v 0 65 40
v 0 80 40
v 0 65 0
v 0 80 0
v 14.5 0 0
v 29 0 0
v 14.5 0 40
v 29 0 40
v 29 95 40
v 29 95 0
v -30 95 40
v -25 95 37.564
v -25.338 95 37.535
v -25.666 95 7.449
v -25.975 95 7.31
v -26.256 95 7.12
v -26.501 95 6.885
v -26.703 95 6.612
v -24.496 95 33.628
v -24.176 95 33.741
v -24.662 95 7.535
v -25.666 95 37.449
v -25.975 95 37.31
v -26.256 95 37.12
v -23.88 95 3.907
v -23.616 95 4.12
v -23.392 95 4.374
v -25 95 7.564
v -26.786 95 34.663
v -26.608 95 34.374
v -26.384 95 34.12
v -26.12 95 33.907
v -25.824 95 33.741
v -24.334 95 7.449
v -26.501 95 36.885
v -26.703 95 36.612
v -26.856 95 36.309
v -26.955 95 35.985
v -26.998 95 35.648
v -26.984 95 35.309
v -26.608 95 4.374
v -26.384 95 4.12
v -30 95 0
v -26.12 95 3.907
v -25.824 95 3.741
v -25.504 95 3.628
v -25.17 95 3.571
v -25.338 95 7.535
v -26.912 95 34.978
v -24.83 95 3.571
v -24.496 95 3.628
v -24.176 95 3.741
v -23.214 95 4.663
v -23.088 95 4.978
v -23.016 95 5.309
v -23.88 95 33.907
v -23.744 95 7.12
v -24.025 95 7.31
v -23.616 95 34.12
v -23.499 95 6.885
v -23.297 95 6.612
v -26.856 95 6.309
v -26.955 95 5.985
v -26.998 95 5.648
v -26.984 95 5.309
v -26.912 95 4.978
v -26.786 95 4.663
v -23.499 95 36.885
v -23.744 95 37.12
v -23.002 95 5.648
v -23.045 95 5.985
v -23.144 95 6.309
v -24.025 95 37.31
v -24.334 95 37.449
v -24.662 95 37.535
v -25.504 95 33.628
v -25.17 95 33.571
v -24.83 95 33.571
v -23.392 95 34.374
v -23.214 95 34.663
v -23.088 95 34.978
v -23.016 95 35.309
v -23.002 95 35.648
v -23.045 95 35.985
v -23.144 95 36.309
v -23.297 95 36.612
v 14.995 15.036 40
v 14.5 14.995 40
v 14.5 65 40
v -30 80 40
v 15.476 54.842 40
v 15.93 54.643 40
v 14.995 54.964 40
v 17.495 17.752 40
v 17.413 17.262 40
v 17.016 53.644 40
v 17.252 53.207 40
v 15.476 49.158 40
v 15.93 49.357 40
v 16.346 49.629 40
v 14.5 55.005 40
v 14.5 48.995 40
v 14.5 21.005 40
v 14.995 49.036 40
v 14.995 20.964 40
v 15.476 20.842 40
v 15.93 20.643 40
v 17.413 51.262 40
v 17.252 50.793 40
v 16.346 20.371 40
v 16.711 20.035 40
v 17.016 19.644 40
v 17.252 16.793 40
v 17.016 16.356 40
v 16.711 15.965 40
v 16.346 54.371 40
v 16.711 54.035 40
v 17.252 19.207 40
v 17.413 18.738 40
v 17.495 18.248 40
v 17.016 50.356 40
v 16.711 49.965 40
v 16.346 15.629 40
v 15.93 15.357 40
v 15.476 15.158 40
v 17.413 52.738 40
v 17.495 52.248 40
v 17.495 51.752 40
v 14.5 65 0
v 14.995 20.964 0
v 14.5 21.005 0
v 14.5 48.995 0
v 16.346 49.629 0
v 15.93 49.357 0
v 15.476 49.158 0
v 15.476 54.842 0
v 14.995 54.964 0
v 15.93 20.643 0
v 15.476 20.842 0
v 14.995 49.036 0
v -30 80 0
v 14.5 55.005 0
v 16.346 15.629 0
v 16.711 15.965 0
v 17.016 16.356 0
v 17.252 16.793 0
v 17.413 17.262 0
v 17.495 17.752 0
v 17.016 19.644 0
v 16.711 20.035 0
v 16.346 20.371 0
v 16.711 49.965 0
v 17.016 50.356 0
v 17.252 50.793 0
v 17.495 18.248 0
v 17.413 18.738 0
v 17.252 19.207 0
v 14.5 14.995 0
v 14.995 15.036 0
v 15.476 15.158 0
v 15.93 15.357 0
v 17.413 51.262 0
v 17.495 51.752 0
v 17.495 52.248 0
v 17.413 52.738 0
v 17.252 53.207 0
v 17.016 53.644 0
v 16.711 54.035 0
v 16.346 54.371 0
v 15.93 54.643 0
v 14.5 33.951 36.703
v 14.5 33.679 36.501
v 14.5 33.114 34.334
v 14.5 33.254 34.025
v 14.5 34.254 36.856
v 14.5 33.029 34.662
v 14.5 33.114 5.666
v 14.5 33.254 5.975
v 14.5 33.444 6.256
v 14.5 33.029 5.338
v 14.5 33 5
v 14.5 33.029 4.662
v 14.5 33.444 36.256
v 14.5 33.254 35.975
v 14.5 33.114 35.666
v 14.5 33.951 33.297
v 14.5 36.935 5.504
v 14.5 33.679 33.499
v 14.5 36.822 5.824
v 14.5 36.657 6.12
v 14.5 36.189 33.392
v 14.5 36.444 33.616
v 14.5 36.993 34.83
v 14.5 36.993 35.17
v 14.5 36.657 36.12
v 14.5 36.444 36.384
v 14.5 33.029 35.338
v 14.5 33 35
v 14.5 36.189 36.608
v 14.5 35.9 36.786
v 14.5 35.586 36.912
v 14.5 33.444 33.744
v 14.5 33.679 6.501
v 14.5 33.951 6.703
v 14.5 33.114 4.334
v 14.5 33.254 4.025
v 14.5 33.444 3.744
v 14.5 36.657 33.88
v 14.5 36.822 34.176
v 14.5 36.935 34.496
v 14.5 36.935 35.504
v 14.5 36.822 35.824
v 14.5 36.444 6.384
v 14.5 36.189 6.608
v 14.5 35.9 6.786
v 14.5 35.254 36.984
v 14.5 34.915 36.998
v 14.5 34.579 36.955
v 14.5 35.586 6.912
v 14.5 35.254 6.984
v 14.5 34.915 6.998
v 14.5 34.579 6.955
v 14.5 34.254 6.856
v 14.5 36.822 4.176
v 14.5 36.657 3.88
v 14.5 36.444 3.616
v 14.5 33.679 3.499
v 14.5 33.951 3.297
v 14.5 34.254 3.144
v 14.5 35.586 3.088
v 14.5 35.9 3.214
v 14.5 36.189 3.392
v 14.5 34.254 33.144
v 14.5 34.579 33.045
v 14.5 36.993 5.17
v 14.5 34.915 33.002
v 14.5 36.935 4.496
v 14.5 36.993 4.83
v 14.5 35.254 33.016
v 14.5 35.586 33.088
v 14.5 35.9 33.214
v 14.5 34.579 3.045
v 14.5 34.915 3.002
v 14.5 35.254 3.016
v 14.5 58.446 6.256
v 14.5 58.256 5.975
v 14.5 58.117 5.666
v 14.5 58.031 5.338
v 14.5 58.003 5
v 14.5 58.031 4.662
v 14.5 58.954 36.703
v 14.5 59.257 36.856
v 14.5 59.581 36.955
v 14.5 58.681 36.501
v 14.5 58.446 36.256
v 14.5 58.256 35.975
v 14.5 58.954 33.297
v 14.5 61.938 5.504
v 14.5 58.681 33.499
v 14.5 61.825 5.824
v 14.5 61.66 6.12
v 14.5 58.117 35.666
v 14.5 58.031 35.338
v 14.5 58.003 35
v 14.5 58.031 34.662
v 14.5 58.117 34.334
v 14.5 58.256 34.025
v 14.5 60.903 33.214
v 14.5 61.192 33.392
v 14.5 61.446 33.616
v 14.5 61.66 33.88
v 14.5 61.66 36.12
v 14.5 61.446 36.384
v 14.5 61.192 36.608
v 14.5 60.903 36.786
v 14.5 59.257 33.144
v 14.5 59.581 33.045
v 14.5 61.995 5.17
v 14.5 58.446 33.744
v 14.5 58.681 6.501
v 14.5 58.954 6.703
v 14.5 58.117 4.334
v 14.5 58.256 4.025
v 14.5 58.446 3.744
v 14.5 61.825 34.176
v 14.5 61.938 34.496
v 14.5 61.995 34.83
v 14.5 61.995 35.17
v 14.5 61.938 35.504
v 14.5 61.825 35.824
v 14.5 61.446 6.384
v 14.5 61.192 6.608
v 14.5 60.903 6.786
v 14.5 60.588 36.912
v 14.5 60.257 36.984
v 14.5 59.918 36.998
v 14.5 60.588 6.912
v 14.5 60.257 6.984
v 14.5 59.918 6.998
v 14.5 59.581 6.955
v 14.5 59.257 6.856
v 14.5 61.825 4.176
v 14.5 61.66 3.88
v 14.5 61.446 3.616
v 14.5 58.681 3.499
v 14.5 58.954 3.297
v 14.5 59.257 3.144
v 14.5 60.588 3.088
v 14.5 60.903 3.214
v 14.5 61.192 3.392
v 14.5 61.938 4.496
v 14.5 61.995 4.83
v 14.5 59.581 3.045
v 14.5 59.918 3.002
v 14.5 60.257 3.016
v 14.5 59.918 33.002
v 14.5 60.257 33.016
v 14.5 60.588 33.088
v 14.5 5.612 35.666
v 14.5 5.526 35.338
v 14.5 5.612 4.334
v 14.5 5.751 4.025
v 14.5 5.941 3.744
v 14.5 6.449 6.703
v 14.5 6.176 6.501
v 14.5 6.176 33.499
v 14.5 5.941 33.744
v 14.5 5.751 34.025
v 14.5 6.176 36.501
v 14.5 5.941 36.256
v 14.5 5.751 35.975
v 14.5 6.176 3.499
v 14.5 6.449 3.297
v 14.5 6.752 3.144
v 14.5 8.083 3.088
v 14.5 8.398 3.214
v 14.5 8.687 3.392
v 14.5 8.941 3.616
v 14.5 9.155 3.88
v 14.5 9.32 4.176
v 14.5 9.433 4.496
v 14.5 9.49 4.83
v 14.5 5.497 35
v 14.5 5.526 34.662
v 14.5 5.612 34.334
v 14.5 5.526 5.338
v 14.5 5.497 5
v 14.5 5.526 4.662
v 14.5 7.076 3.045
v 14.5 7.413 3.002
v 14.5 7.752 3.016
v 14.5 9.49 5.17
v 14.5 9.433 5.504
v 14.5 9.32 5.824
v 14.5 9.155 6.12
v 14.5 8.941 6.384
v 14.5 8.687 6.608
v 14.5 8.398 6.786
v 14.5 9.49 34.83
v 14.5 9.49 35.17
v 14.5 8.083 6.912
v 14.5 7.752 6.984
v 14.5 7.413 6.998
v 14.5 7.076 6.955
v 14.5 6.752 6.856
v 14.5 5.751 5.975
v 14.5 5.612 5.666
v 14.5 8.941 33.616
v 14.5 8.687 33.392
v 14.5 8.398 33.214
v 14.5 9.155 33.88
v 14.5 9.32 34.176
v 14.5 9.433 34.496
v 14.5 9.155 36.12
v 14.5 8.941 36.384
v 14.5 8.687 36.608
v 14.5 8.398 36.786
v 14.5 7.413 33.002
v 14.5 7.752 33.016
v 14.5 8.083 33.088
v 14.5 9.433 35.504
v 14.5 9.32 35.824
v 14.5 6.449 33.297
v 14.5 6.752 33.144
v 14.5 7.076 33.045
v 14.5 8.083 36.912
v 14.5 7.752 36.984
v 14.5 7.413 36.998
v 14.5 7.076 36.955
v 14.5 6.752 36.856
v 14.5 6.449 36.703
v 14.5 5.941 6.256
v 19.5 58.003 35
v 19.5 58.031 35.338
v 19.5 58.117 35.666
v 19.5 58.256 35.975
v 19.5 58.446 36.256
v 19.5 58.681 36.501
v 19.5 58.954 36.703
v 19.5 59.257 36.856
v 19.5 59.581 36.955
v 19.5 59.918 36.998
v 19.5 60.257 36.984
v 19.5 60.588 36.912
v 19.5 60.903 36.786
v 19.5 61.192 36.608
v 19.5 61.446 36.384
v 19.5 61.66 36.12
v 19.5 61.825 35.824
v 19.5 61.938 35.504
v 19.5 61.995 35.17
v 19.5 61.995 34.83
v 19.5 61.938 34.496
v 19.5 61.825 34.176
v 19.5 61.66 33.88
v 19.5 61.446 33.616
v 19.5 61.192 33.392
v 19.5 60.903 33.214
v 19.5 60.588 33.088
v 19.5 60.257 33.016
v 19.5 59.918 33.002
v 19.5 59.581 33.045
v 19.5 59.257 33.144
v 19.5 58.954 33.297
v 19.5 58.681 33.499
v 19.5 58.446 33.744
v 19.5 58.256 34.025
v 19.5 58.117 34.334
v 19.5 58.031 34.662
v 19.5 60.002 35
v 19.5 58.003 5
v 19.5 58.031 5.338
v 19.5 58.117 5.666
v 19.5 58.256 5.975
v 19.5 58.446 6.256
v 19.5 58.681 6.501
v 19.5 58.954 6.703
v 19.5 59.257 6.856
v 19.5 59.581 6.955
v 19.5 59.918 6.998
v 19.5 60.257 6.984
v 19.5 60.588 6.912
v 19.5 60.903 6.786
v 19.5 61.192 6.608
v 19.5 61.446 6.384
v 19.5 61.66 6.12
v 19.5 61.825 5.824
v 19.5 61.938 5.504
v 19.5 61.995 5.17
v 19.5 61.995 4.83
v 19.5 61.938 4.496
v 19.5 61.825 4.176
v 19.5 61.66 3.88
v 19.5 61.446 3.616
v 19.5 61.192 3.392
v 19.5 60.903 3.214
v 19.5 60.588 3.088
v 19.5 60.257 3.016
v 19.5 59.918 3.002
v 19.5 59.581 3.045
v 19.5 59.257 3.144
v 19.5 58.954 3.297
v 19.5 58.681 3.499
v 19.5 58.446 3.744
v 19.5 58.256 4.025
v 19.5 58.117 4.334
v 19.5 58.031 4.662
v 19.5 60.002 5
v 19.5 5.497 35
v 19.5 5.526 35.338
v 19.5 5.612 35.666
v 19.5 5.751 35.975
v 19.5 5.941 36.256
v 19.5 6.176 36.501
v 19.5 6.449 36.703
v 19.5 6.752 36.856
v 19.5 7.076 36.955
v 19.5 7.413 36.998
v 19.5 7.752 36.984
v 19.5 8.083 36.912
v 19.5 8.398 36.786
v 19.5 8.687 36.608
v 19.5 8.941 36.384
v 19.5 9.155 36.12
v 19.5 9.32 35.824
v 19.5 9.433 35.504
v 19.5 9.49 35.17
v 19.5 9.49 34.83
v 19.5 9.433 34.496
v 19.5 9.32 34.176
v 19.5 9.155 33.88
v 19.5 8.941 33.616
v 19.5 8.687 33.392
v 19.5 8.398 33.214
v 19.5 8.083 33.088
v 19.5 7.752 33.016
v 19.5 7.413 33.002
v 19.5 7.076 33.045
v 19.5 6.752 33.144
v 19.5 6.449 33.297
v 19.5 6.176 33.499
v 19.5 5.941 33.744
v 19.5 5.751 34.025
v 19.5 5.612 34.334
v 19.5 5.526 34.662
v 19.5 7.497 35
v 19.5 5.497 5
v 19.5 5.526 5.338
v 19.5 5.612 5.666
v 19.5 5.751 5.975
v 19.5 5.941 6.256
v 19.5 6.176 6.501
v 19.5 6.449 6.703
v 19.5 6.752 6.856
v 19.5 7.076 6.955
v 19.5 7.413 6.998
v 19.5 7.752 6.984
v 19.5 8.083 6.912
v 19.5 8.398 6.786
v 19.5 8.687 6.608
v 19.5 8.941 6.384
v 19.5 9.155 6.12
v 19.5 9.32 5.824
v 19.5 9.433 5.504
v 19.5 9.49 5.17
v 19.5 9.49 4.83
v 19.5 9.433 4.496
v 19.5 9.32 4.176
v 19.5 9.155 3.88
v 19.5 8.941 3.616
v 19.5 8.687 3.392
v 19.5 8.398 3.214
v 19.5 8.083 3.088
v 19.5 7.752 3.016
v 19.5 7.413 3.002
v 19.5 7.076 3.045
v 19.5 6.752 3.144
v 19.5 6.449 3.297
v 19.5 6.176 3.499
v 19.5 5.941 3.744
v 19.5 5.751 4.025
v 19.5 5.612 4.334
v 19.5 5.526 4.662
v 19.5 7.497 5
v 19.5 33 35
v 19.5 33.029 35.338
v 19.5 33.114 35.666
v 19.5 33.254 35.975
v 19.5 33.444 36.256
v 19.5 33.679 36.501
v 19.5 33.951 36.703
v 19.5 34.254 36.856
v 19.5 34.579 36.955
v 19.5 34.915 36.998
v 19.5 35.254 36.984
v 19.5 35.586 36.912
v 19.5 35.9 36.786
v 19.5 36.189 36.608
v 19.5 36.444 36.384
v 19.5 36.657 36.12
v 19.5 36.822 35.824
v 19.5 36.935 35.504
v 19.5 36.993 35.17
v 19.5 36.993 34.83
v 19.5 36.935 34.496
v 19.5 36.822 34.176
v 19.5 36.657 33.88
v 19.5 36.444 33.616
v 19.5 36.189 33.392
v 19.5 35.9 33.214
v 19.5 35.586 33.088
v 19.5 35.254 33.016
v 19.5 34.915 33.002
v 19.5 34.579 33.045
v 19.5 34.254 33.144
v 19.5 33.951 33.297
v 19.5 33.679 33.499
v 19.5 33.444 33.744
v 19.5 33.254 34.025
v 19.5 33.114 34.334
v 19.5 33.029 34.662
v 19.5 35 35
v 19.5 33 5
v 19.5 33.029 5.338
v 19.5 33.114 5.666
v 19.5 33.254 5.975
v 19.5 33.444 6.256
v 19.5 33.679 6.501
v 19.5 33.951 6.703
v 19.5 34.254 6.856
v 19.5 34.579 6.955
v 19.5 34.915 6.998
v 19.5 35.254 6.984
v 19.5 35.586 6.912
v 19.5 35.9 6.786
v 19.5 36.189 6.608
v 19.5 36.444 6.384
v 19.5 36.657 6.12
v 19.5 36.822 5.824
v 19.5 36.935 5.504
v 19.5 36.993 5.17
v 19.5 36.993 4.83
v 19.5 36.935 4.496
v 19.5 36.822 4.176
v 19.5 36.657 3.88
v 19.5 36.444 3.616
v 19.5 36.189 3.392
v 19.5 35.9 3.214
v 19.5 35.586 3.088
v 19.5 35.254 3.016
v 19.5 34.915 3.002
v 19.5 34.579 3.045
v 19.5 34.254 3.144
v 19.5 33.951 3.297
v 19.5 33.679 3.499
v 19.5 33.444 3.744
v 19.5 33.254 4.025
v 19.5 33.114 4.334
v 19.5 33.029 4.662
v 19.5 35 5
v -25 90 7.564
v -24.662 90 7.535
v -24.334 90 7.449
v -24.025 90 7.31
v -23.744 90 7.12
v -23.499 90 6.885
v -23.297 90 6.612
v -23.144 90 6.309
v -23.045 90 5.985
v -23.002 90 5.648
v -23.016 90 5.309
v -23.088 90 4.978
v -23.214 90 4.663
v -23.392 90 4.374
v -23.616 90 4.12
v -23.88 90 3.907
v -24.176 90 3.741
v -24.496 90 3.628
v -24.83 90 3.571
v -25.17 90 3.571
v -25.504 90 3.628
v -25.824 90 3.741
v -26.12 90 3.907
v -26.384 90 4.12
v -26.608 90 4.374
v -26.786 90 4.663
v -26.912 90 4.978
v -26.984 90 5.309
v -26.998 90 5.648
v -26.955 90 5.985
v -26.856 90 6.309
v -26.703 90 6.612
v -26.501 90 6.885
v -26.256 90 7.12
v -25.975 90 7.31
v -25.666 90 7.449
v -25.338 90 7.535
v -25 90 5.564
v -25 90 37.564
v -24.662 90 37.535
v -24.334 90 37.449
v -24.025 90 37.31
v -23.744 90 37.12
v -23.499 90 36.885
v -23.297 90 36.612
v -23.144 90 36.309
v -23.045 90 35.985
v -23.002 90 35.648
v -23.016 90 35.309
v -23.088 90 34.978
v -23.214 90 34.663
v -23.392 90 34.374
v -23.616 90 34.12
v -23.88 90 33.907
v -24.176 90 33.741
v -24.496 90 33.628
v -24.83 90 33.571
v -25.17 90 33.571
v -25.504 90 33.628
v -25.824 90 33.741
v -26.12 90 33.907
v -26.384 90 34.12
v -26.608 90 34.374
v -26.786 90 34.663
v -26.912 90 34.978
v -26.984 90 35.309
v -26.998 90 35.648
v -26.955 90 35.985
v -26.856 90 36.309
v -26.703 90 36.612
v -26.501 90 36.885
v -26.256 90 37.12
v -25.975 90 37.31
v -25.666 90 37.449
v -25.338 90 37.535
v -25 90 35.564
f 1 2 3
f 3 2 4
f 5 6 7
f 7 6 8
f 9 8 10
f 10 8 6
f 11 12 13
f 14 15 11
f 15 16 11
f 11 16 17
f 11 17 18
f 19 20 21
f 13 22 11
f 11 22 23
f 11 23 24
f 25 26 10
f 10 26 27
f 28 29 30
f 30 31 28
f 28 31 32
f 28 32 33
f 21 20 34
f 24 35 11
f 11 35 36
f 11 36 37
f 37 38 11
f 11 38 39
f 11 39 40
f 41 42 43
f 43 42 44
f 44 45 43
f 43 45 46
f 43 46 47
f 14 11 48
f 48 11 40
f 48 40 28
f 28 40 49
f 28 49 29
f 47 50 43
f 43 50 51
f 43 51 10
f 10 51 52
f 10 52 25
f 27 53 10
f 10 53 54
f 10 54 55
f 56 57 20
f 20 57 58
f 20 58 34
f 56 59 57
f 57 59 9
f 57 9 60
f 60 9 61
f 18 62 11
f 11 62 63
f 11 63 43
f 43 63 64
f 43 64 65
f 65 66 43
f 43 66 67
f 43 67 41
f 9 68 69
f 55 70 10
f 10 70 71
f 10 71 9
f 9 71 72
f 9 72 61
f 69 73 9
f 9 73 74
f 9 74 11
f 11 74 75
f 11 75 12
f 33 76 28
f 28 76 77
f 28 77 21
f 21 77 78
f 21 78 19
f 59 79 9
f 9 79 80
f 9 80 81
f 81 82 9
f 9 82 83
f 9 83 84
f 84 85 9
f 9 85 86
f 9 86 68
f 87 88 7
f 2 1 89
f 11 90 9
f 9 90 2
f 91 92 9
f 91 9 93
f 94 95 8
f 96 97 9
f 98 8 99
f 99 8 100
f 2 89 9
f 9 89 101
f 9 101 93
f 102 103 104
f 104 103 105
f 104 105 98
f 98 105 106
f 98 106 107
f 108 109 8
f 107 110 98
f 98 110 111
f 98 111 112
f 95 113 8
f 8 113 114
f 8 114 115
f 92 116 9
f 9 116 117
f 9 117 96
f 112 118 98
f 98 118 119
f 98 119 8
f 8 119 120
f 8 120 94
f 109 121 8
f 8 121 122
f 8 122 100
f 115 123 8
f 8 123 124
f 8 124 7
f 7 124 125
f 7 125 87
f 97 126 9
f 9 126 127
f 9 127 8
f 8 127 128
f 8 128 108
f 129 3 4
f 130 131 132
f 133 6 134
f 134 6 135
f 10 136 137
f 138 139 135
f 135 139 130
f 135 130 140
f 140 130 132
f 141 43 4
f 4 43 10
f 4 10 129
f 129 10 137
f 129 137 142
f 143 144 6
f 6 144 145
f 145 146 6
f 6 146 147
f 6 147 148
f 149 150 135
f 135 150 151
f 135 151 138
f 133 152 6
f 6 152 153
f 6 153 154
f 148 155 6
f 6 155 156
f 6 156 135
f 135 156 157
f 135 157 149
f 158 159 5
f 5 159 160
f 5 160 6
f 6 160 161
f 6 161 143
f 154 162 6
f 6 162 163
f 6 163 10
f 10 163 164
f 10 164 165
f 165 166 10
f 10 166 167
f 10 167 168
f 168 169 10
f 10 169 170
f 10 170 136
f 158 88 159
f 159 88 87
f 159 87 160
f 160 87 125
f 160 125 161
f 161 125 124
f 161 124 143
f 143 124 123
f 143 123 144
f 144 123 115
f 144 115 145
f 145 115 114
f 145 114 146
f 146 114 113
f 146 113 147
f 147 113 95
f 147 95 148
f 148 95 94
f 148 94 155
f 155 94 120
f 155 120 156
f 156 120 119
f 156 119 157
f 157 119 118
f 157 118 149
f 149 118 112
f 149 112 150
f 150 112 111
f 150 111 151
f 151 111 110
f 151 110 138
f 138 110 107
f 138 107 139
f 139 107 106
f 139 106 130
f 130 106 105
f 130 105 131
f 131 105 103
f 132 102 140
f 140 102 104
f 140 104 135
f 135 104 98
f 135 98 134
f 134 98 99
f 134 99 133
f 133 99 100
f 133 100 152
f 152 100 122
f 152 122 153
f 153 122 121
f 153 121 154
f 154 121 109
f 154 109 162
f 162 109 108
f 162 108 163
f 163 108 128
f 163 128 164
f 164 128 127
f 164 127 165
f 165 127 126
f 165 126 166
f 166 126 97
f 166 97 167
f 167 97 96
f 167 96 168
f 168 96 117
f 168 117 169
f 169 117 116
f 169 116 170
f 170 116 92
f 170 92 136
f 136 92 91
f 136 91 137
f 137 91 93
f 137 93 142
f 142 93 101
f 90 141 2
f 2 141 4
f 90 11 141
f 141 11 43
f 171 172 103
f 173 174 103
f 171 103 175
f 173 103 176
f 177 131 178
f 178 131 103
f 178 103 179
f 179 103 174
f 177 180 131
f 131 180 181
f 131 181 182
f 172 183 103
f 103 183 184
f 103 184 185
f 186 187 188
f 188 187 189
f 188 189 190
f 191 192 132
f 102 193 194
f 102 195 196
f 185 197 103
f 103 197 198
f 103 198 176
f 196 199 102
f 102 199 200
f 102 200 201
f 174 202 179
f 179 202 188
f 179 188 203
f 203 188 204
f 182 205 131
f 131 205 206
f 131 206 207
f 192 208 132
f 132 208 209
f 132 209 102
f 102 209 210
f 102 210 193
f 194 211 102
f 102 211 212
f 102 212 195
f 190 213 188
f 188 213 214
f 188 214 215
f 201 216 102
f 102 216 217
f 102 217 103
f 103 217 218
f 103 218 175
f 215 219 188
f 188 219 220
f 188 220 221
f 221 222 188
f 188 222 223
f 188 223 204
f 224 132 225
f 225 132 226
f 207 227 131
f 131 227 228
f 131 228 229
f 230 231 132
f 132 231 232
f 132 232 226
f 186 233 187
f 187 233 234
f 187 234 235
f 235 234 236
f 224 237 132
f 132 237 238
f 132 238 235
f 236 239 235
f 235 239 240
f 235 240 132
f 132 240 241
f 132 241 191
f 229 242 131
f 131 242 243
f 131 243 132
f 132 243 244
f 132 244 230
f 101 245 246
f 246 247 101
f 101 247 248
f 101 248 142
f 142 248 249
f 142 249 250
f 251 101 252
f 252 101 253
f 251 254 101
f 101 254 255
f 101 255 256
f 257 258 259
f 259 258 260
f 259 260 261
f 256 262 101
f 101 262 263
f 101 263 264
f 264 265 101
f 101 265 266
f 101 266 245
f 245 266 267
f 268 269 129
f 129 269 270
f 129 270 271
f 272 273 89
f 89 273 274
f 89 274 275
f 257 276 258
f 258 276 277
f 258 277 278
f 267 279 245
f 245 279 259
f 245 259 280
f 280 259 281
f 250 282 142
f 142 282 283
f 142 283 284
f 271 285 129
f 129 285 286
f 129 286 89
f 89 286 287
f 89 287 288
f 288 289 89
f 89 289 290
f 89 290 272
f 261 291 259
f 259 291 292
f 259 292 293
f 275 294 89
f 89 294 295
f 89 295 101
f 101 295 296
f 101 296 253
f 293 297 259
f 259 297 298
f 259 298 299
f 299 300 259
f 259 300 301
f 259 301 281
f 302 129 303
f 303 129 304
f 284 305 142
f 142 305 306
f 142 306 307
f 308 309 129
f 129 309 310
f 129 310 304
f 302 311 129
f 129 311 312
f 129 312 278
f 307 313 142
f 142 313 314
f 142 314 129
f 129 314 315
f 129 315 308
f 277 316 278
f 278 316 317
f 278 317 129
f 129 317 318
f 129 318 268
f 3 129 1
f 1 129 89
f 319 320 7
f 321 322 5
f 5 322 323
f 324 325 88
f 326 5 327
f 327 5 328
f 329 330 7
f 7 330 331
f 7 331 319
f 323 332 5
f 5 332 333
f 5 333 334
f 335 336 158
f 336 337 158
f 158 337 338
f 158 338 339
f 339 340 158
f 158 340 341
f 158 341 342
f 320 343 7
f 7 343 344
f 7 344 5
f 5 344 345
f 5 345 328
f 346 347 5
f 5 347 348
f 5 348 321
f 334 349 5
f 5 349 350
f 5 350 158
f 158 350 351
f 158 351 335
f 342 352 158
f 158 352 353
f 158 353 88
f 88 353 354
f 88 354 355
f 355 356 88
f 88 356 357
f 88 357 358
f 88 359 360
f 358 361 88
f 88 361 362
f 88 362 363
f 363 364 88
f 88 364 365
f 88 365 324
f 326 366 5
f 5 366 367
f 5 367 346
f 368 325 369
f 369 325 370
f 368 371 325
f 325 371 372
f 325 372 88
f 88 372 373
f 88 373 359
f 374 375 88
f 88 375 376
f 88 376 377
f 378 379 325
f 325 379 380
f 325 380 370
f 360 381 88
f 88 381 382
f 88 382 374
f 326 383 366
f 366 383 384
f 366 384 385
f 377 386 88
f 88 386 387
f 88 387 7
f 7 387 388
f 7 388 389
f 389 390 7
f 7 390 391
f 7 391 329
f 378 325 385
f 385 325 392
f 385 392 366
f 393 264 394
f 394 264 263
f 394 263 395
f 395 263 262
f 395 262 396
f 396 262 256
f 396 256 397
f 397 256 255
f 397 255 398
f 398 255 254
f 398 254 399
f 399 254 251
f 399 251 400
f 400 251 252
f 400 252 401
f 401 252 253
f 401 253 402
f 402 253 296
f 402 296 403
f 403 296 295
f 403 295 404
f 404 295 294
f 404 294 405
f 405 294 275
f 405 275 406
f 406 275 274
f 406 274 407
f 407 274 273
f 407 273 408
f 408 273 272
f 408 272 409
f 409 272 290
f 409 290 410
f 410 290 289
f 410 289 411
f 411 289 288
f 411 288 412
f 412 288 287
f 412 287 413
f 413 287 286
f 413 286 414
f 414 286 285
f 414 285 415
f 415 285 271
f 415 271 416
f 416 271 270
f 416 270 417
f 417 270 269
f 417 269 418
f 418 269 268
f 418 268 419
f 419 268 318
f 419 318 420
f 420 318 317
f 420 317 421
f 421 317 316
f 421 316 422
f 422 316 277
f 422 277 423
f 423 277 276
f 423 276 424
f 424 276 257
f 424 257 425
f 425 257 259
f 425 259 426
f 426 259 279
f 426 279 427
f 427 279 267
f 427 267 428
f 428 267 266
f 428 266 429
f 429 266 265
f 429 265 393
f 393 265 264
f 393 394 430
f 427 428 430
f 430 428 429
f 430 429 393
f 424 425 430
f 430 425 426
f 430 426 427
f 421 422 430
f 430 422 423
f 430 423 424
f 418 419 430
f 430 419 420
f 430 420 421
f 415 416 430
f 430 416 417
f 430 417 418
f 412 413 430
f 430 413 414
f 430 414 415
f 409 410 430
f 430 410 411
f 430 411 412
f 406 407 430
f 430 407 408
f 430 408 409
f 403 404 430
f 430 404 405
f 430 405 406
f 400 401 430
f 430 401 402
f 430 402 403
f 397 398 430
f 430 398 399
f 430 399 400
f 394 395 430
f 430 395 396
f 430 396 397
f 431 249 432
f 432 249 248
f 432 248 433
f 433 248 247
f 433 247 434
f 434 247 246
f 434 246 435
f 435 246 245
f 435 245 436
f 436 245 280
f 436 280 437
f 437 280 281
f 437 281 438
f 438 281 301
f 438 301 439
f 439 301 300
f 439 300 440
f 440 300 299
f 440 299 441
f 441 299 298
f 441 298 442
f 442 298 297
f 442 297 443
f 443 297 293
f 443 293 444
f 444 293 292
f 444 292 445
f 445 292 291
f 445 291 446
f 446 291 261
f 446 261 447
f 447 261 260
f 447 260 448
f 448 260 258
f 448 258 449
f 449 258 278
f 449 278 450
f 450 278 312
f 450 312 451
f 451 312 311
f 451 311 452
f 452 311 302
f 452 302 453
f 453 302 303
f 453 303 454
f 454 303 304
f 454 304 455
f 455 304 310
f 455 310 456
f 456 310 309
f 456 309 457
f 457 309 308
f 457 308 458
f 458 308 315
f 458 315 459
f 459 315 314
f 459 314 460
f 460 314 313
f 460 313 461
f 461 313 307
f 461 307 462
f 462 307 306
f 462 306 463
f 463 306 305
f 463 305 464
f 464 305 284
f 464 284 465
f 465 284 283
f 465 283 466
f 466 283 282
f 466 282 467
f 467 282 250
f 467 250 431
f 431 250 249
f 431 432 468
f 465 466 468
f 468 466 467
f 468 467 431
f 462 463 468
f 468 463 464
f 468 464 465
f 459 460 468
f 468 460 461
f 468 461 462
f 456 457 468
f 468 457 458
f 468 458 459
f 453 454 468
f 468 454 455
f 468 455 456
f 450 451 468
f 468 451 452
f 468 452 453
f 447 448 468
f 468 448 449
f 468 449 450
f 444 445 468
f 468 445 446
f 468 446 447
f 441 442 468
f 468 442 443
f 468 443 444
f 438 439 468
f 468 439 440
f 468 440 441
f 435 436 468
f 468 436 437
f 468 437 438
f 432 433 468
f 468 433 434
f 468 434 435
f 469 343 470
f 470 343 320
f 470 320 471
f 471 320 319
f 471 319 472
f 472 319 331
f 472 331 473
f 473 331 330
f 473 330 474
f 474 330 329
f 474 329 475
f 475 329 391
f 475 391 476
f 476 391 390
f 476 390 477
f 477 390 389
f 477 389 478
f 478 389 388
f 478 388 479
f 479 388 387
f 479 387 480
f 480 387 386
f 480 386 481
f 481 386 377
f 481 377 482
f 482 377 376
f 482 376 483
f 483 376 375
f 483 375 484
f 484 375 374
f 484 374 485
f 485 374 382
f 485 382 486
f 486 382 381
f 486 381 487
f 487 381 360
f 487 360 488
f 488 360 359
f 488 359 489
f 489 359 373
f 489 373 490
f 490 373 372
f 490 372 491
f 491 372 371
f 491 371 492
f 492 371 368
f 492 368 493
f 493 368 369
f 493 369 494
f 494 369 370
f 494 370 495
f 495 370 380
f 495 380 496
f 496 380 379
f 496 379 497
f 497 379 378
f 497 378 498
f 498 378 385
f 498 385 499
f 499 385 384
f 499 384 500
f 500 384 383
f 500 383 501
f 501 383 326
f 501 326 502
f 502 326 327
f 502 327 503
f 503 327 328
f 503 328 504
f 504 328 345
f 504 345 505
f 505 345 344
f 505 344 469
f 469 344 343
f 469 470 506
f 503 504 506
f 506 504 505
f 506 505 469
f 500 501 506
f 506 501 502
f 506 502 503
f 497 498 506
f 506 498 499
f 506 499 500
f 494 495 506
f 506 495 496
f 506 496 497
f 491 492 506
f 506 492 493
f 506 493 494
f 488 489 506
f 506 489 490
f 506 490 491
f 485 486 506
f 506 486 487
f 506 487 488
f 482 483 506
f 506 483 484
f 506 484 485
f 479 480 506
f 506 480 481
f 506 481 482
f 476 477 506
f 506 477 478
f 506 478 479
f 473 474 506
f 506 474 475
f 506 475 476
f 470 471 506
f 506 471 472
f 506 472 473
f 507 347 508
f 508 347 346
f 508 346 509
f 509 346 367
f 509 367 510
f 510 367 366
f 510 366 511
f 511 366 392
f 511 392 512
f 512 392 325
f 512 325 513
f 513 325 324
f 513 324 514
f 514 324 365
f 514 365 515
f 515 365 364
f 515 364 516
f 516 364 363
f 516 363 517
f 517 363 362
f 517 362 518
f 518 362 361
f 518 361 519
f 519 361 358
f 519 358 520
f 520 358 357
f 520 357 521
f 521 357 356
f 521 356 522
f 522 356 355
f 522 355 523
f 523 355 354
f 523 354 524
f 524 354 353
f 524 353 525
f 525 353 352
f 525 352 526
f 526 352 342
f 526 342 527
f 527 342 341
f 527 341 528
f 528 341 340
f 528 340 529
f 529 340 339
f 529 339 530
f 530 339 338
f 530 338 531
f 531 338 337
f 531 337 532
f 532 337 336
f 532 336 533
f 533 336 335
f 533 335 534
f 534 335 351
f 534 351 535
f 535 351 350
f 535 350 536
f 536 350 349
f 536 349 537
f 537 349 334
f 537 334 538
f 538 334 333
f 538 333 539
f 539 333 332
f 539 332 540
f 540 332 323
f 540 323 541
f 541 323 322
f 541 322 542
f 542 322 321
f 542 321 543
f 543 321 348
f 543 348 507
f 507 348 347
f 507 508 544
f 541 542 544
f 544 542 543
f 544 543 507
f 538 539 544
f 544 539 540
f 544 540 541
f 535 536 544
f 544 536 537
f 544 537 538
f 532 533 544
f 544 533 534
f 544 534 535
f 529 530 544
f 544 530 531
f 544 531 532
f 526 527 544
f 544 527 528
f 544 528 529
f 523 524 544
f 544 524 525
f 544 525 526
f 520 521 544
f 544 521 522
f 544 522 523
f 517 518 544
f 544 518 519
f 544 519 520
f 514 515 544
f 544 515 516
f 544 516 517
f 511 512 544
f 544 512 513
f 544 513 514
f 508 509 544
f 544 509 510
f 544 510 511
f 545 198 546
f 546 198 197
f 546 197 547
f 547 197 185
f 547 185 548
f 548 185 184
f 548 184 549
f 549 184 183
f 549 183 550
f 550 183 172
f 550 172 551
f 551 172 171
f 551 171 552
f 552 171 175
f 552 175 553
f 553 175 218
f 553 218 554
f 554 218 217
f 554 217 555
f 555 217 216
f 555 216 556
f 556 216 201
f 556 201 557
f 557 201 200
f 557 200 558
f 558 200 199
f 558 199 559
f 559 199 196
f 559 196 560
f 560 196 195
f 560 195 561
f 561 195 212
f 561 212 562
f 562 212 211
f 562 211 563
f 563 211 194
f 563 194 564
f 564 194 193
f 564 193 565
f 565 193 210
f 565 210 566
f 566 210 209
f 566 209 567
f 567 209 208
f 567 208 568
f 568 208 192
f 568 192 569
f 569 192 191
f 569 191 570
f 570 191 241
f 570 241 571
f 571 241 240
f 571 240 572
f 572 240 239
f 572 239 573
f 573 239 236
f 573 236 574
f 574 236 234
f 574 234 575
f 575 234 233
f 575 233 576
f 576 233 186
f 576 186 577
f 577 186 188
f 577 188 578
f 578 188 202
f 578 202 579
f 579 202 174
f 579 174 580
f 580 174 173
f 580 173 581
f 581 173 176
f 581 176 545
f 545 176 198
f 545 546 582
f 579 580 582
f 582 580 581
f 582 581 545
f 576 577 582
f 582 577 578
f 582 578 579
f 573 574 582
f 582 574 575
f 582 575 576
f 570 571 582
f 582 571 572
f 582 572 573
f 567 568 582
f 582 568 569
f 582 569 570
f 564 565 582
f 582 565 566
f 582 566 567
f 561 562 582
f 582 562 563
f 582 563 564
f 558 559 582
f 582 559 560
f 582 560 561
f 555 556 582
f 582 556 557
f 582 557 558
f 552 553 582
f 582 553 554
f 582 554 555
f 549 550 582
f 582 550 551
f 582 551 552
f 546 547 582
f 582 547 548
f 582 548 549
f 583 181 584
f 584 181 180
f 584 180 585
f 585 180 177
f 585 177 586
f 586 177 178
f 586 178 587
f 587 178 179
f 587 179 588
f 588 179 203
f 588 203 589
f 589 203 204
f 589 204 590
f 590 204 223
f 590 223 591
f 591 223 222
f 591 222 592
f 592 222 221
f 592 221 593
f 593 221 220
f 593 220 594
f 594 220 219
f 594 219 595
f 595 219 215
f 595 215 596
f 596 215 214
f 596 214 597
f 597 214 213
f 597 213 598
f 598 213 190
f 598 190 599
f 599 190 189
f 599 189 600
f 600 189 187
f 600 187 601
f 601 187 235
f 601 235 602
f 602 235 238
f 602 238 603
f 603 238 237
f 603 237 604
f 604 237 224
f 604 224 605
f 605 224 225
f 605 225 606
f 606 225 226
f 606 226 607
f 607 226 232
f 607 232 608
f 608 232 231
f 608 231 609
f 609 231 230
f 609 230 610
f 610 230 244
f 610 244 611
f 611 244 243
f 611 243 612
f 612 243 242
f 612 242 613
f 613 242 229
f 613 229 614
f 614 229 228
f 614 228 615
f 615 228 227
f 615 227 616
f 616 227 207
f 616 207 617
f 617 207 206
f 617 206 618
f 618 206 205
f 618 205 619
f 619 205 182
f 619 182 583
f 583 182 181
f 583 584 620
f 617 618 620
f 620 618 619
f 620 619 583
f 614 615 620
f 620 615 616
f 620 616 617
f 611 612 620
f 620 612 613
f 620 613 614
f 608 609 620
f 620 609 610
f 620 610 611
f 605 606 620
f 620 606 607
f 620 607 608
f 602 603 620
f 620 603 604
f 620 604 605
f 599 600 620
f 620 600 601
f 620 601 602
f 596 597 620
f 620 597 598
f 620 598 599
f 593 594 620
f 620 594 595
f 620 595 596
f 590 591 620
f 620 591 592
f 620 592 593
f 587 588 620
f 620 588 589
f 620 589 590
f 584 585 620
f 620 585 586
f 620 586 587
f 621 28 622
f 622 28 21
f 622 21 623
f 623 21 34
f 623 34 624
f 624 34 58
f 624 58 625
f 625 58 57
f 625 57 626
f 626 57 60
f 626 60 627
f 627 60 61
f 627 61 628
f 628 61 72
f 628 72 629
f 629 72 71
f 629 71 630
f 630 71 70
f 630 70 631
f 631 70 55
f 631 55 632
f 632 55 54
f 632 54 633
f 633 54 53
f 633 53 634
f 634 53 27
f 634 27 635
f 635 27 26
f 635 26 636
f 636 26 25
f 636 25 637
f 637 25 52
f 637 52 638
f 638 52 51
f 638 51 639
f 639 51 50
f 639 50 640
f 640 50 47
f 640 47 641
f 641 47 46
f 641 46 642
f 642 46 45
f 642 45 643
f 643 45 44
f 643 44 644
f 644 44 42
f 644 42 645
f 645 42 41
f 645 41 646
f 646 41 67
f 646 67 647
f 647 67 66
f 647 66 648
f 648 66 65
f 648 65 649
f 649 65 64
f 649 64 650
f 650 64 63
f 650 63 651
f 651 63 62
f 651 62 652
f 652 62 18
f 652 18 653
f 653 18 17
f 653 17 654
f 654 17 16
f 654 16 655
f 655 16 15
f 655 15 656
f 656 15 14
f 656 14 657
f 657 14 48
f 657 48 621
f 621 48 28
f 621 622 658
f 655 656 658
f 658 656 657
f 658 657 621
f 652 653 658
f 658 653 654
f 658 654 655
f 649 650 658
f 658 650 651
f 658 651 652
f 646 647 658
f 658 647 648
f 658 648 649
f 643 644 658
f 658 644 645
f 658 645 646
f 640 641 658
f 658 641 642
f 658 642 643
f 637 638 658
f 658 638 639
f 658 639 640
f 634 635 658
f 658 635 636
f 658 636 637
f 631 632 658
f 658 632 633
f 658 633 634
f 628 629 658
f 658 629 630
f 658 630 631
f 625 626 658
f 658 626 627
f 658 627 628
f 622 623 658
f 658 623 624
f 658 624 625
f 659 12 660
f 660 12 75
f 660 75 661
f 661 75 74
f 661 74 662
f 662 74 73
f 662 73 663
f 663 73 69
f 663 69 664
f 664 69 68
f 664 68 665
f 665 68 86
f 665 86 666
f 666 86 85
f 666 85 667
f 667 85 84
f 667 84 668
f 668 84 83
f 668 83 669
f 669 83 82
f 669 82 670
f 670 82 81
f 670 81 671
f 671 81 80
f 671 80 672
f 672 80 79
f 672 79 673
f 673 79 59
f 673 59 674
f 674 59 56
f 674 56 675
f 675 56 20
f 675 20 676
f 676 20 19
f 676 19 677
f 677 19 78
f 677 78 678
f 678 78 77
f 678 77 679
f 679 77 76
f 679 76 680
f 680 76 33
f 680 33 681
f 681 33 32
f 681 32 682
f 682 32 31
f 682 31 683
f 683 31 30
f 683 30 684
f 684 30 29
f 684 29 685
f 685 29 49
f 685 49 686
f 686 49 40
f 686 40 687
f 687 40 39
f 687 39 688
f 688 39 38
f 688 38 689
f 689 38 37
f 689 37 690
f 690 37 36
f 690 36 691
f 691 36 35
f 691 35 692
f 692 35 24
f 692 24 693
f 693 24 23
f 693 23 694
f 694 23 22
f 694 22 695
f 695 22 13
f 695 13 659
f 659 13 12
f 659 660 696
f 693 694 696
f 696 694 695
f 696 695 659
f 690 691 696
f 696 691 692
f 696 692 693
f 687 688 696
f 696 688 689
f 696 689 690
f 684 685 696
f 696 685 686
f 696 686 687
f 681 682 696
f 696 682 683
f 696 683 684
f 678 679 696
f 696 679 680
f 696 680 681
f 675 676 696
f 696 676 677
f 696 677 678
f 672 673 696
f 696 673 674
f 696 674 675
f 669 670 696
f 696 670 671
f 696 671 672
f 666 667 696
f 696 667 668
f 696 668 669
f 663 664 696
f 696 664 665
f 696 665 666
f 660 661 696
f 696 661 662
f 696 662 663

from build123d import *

# Parameters (mm, degrees)
SKETCH_3_W          = 29
SKETCH_3_H          = 95
EXTRUDE_1_DEPTH     = 40
SKETCH_4_R          = 3.005
CUT_EXTRUDE_1_DEPTH = 108.079409785
SKETCH_6_W          = 40
SKETCH_6_H          = 15
EXTRUDE_3_DEPTH     = 30
SKETCH_7_W          = 14.5
SKETCH_7_H          = 65
CUT_EXTRUDE_2_DEPTH = 108.354552768
SKETCH_9_R          = 2
CUT_EXTRUDE_4_DEPTH = 5
SKETCH_10_R         = 2
CUT_EXTRUDE_5_DEPTH = 5
SKETCH_11_R         = 2
CUT_EXTRUDE_6_DEPTH = 5
SKETCH_12_R         = 2
CUT_EXTRUDE_7_DEPTH = 5


with BuildPart() as part:
    # 草图3 → 凸台-拉伸1 (new body)
    with BuildSketch(Plane.XY):
        with Locations((14.5, 47.5)):
            Rectangle(SKETCH_3_W, SKETCH_3_H)
    extrude(amount=EXTRUDE_1_DEPTH)

    # 草图4 → 切除-拉伸1 (cut, through all)
    with BuildSketch(Plane.XY.offset(40)):
        with Locations((14.5, 52)):
            Circle(SKETCH_4_R)
        with Locations((14.5, 18)):
            Circle(SKETCH_4_R)
    extrude(amount=-CUT_EXTRUDE_1_DEPTH, mode=Mode.SUBTRACT)

    # 草图6 → 凸台-拉伸3 (add)
    with BuildSketch(Plane.ZY):
        with Locations((20, 87.5)):
            Rectangle(SKETCH_6_W, SKETCH_6_H)
    extrude(amount=EXTRUDE_3_DEPTH)

    # 草图7 → 切除-拉伸2 (cut, through all)
    with BuildSketch(Plane.XY.offset(40)):
        with Locations((7.25, 32.5)):
            Rectangle(SKETCH_7_W, SKETCH_7_H)
    extrude(amount=-CUT_EXTRUDE_2_DEPTH, mode=Mode.SUBTRACT)

    # 草图9 → 切除-拉伸4 (cut)
    with BuildSketch(Plane.ZY.offset(-14.5)):
        with Locations(Location((5, 60.0025, 0), (0, 0, 270))):
            Circle(SKETCH_9_R)
        with Locations(Location((35, 60.0025, 0), (0, 0, 270))):
            Circle(SKETCH_9_R)
    extrude(amount=-CUT_EXTRUDE_4_DEPTH, mode=Mode.SUBTRACT)

    # 草图10 → 切除-拉伸5 (cut)
    with BuildSketch(Plane.ZY.offset(-14.5)):
        with Locations(Location((5, 7.4975, 0), (0, 0, 270))):
            Circle(SKETCH_10_R)
        with Locations(Location((35, 7.4975, 0), (0, 0, 270))):
            Circle(SKETCH_10_R)
    extrude(amount=-CUT_EXTRUDE_5_DEPTH, mode=Mode.SUBTRACT)

    # 草图11 → 切除-拉伸6 (cut)
    with BuildSketch(Plane.ZY.offset(-14.5)):
        with Locations(Location((5, 35, 0), (0, 0, 270))):
            Circle(SKETCH_11_R)
        with Locations(Location((35, 35, 0), (0, 0, 270))):
            Circle(SKETCH_11_R)
    extrude(amount=-CUT_EXTRUDE_6_DEPTH, mode=Mode.SUBTRACT)

    # 草图12 → 切除-拉伸7 (cut)
    with BuildSketch(Plane(origin=(0, 95, 0), x_dir=(1, 0, 0), z_dir=(0, 1, 0))):
        with Locations(Location((-25, -35.563533882, 0), (0, 0, 270))):
            Circle(SKETCH_12_R)
        with Locations(Location((-25, -5.563533882, 0), (0, 0, 270))):
            Circle(SKETCH_12_R)
    extrude(amount=-CUT_EXTRUDE_7_DEPTH, mode=Mode.SUBTRACT)


solid = part.part
